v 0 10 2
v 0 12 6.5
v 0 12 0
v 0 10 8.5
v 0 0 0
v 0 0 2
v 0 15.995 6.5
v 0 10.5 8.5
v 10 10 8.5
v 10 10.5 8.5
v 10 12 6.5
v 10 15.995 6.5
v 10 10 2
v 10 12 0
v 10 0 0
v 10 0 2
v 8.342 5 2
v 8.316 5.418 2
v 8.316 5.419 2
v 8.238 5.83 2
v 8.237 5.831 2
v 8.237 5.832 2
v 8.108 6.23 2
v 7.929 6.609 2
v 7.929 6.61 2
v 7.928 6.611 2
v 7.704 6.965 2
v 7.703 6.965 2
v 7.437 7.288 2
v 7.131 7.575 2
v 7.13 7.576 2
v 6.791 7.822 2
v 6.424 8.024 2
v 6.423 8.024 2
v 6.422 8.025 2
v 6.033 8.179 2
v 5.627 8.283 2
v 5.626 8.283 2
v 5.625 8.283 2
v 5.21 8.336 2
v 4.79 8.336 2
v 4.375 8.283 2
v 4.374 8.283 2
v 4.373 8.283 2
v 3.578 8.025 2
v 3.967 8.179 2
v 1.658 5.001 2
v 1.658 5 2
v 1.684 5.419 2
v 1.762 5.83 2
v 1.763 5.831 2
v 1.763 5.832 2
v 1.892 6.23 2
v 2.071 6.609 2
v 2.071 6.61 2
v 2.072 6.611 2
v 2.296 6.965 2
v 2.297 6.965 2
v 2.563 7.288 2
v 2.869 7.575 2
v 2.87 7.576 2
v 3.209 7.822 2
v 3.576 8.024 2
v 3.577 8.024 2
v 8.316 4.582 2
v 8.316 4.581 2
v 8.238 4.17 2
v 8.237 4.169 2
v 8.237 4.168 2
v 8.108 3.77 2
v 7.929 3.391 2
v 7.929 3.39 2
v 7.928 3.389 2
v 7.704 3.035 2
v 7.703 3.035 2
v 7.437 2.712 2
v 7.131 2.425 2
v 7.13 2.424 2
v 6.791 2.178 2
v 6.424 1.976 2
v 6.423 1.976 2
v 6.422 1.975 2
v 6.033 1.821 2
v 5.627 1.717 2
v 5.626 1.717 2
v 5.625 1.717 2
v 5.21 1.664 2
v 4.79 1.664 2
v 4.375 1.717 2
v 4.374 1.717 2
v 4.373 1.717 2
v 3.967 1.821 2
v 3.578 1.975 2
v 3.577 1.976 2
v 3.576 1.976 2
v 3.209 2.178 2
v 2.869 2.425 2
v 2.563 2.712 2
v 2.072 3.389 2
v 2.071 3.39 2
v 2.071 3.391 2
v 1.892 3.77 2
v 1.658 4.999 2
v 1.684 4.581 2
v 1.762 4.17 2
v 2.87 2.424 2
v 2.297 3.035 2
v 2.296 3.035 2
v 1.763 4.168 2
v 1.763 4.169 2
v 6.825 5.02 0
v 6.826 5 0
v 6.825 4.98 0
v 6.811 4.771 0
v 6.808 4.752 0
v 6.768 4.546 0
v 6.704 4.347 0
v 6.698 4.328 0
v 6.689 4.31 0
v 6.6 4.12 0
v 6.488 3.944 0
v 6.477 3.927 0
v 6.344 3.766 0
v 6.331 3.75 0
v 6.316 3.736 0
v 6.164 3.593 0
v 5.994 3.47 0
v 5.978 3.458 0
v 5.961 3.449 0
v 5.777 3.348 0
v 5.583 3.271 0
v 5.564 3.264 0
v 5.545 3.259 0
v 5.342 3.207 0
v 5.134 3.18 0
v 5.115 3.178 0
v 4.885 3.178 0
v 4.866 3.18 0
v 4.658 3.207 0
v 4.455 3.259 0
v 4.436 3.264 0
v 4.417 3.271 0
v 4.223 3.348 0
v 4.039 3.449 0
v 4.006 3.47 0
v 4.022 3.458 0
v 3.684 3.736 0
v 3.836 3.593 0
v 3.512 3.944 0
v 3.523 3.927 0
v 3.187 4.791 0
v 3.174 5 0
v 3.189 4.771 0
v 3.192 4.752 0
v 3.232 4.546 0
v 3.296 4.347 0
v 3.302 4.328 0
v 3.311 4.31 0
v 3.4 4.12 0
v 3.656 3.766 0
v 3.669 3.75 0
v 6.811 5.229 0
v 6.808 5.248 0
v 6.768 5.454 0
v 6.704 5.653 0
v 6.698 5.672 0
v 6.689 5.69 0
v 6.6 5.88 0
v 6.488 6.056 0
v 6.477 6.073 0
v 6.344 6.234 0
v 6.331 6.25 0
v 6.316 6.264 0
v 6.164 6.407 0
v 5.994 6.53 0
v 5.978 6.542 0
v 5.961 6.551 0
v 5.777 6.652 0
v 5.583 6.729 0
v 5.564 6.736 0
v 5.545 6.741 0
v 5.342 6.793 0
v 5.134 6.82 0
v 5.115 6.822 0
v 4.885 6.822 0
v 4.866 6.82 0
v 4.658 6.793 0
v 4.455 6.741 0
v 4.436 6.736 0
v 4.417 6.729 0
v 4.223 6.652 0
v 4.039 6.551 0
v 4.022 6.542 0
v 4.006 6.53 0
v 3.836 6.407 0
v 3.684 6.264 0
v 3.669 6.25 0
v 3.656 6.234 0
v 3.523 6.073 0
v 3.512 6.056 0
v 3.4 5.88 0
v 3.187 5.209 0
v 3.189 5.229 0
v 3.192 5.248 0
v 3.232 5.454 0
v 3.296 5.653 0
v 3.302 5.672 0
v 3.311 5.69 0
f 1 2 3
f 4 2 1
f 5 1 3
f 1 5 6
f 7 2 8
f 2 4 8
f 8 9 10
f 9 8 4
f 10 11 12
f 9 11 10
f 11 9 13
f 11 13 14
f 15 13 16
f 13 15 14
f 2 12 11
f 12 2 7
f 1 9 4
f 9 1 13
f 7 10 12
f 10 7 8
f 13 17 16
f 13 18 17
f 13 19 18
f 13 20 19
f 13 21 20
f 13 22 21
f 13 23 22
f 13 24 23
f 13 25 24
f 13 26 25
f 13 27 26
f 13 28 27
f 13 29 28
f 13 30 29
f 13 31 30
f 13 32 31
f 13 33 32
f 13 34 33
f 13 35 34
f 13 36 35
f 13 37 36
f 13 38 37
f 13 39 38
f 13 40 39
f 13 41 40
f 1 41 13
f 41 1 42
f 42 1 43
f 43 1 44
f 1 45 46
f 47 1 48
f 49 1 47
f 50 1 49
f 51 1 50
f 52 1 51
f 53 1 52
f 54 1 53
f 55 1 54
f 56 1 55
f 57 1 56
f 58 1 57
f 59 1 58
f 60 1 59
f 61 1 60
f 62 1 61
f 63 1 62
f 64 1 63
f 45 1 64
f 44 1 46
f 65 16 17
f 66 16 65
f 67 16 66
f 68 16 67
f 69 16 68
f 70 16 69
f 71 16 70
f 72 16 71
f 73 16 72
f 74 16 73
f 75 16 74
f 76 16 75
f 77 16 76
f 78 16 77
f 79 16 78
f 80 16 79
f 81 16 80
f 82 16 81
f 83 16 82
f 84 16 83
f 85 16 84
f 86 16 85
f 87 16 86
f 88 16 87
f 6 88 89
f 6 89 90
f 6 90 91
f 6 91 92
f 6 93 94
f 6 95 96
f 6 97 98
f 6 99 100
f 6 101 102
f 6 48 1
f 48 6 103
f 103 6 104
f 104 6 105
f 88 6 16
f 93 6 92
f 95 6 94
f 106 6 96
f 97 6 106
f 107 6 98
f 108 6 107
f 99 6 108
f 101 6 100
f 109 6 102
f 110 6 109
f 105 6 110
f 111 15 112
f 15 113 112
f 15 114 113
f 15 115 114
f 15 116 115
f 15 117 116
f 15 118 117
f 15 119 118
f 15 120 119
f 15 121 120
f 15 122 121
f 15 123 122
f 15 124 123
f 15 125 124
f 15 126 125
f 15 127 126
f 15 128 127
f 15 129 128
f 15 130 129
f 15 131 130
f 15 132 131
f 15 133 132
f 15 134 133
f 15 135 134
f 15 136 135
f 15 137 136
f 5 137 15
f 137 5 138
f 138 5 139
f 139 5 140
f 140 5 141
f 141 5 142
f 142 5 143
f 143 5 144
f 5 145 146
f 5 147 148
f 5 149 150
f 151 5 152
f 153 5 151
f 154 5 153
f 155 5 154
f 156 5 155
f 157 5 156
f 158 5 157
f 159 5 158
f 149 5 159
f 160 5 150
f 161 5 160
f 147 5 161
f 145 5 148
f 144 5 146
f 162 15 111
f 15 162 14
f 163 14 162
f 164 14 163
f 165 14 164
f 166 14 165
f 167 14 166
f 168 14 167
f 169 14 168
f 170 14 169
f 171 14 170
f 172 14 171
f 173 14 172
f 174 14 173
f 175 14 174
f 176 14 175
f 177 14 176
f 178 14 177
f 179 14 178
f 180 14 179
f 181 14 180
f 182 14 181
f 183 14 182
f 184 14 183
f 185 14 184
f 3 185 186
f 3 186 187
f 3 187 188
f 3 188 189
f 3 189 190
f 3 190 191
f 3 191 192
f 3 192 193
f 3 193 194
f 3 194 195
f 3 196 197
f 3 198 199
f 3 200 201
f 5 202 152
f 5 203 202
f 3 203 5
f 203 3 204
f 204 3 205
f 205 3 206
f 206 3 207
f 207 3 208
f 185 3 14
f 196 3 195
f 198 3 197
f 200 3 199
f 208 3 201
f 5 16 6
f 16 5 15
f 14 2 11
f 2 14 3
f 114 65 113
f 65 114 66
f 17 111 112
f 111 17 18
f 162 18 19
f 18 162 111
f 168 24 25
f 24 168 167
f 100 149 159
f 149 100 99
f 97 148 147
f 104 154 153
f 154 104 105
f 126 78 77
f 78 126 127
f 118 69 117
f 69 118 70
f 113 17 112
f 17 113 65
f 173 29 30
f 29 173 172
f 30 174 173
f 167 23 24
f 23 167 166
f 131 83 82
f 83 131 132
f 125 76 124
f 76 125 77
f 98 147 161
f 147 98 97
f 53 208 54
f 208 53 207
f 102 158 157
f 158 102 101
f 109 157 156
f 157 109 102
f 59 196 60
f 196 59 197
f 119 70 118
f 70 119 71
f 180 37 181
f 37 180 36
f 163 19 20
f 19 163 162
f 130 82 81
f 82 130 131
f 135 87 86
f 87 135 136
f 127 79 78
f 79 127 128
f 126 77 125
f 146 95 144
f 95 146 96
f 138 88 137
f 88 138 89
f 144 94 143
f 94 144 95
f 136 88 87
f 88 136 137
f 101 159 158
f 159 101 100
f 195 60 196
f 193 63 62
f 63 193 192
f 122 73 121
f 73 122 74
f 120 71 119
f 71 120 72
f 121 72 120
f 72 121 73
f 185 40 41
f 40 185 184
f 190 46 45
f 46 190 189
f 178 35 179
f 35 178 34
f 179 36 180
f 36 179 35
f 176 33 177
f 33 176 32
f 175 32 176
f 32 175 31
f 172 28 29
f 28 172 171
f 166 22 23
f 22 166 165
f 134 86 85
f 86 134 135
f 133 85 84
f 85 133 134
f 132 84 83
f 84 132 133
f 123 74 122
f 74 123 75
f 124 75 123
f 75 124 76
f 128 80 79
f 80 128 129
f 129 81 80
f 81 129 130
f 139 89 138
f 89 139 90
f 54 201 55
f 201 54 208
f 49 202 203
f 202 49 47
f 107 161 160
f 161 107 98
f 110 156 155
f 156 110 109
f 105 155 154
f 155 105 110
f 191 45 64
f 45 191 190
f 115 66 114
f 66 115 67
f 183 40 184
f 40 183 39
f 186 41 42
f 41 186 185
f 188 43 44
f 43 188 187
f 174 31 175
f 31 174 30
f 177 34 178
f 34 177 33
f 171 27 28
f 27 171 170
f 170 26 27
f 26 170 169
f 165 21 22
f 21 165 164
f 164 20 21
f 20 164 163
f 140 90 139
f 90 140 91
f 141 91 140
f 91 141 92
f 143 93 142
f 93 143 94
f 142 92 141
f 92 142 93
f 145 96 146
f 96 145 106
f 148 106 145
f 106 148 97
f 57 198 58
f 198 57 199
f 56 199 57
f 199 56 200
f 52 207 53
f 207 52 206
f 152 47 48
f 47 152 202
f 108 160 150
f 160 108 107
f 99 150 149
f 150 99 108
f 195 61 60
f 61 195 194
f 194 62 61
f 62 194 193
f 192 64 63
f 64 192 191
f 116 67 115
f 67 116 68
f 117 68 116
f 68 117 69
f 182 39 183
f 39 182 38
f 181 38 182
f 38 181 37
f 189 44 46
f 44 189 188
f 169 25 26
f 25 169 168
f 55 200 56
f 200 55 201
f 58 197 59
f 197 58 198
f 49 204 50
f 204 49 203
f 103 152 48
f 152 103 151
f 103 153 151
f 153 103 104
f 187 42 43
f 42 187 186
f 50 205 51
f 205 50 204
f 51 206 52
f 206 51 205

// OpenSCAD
alt = 6.5;
larg=10;
comp=10;




difference() {
   union(){
      cube([larg,comp,2]);
      translate([0,comp,0]) cube([larg,2,alt]);
      difference() {
           translate([0,comp,alt]) cube([larg,6,2]);
           translate([-1,comp+0.5,alt+2]) rotate([-20,0,0]) cube([larg+2,6,2]);

      }
   }
  translate([larg/2,comp/2,-0.1]) cylinder(h=2.11, r1=1.75, r2=3.35, center=false,$fn=50);
}

 /*% rotate(a=90, v=[1,0,0]) { rotate(a=90, v=[0,1,0])  translate([2, .75,9.8]) {
   text("HackyRacersV2.0", font = "Liberation Sans",.5);}}
*/
